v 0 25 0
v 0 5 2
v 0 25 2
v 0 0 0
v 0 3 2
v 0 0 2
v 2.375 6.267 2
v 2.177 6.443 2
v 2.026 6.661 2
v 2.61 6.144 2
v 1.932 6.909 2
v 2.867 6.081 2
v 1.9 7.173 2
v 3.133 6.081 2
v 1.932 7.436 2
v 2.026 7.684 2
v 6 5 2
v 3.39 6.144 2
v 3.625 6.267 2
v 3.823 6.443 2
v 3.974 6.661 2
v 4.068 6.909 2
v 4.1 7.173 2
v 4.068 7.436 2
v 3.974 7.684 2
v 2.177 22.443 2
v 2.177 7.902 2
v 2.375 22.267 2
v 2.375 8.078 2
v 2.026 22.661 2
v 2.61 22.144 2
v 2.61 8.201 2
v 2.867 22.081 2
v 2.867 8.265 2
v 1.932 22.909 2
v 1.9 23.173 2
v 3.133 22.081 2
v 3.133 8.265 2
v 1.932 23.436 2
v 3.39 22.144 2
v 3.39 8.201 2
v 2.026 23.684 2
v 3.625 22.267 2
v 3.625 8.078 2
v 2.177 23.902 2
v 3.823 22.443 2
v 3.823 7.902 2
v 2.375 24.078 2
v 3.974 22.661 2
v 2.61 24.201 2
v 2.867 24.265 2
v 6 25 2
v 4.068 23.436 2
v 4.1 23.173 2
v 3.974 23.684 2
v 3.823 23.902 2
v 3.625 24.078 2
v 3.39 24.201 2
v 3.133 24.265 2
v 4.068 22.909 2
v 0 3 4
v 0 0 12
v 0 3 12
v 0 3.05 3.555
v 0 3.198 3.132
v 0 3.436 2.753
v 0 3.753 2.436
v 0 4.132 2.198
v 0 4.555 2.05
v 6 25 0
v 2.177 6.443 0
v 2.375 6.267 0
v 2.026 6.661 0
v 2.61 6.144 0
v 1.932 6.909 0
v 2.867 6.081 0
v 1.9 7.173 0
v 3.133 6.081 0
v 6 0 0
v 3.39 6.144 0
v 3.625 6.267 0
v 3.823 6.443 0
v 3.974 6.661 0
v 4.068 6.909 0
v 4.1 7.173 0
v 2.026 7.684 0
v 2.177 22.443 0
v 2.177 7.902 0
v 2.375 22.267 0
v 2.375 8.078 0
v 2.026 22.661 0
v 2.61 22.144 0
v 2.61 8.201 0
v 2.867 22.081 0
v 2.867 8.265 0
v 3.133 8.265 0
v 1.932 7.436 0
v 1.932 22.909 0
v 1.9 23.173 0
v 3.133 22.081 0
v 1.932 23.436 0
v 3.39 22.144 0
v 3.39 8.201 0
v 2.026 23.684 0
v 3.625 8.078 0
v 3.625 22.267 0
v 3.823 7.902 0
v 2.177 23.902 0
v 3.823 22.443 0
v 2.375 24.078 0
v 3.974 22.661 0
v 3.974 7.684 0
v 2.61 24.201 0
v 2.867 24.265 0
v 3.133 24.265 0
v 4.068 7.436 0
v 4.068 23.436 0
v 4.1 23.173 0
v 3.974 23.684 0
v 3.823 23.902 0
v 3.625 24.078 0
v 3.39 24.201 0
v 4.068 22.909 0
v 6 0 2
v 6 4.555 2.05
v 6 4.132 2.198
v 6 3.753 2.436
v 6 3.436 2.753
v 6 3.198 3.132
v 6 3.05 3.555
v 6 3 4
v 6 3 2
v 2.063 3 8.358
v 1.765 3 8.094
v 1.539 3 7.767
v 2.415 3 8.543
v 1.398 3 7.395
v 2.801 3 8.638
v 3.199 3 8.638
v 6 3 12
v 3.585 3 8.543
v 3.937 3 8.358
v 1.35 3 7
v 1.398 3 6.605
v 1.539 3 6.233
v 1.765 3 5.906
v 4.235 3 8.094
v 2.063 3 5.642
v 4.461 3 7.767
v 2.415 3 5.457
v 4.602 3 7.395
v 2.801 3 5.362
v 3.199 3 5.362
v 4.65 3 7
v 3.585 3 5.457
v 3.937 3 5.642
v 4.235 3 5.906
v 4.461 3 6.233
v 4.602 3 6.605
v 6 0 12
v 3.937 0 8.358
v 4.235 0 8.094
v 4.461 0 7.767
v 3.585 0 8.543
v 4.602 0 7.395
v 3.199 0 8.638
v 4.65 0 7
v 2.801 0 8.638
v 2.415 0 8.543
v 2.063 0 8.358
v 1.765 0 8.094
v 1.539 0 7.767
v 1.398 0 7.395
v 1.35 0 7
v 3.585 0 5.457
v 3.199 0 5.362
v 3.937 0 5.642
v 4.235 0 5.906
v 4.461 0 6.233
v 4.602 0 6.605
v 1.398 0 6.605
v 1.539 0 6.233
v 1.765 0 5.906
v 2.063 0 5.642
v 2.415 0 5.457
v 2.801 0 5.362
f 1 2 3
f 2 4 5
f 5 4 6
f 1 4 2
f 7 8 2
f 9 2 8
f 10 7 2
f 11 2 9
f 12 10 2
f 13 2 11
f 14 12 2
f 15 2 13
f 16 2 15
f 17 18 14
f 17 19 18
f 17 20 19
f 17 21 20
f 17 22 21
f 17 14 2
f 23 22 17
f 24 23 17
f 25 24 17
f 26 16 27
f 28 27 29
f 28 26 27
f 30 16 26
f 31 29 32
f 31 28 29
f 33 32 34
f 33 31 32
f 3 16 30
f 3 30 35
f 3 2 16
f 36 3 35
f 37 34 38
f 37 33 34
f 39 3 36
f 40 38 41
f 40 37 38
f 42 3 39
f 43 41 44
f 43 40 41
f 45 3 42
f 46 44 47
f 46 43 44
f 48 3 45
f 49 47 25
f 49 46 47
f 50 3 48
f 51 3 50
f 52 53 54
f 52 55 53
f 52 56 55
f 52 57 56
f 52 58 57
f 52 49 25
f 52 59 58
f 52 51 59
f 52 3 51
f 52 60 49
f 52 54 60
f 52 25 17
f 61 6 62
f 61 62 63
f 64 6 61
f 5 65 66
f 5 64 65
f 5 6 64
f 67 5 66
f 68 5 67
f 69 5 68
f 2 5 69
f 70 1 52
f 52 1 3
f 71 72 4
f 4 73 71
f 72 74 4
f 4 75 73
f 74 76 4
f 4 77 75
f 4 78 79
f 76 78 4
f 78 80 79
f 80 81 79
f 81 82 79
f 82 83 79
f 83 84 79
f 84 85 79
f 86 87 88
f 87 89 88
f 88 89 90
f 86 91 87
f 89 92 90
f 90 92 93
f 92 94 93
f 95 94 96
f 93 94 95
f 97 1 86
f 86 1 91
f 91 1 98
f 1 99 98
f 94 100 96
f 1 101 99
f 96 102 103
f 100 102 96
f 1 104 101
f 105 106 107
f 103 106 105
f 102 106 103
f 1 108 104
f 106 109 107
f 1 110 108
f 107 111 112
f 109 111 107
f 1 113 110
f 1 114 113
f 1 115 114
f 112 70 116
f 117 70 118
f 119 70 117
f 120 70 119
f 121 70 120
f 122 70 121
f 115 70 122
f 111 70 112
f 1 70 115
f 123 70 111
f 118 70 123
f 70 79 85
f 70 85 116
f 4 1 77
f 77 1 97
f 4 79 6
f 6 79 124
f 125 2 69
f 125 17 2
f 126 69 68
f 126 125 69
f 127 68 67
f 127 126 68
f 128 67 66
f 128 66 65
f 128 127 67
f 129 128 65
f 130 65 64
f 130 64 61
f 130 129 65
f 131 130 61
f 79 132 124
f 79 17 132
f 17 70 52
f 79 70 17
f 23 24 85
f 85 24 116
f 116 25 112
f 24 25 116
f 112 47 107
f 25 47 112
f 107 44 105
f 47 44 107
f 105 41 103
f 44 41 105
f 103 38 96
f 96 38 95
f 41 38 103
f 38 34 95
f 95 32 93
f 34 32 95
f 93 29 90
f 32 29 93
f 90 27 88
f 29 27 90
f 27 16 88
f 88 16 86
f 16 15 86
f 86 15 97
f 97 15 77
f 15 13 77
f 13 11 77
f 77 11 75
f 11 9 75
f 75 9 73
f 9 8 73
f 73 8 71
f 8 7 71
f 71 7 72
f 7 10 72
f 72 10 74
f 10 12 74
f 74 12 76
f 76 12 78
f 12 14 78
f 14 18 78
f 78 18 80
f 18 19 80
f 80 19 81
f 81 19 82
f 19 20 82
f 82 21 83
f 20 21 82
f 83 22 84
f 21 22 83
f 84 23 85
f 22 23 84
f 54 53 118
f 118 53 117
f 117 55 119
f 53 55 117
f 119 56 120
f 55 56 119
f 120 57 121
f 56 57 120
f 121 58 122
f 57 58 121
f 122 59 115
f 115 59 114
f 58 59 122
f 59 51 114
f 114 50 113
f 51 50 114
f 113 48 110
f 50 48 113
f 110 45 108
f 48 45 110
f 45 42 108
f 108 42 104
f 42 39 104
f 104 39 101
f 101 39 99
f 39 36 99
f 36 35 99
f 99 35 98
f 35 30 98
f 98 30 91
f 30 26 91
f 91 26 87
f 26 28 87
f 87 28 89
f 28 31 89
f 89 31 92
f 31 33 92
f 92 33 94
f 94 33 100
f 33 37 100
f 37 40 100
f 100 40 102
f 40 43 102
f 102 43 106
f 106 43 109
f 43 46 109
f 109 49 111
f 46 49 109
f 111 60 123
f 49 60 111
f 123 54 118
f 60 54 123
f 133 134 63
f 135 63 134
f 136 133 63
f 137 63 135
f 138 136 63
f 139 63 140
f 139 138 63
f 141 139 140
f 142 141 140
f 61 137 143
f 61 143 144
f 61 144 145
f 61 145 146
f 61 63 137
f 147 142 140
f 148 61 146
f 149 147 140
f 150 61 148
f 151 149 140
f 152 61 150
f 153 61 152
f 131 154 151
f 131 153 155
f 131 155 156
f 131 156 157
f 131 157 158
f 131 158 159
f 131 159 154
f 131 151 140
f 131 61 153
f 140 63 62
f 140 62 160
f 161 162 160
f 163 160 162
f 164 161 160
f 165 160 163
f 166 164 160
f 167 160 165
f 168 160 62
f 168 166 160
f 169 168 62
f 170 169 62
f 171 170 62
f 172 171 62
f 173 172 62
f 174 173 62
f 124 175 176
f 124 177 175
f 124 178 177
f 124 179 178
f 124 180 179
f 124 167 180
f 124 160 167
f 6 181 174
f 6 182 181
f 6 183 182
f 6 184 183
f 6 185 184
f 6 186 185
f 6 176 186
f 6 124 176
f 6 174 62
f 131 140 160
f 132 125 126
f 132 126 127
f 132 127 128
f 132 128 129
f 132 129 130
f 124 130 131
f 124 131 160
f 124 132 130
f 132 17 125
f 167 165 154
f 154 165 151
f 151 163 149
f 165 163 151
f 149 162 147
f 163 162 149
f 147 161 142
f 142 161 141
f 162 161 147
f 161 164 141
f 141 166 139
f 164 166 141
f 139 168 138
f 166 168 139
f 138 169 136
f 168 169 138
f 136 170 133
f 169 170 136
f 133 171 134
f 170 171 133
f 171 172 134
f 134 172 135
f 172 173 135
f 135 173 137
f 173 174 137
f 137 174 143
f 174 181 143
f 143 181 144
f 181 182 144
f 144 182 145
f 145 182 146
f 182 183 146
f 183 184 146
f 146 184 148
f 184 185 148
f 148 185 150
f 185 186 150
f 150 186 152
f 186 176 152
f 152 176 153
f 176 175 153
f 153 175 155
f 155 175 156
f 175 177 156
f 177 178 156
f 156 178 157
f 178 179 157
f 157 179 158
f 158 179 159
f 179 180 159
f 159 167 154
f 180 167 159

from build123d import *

# Parameters (mm, degrees)
SKETCH_W        = 6
SKETCH_H        = 25
PAD_DEPTH       = 2
SKETCH001_W     = 6
SKETCH001_H     = 3
PAD001_DEPTH    = 10
FILLET_R        = 2
SKETCH002_R     = 1.1
POCKET_DEPTH    = 5
SKETCH003_R     = 1.65
POCKET001_DEPTH = 5


with BuildPart() as part:
    # Sketch → Pad (new body)
    with BuildSketch(Plane.XY):
        with Locations((3, 12.5)):
            Rectangle(SKETCH_W, SKETCH_H)
    extrude(amount=PAD_DEPTH)

    # Sketch001 (on Face6 of Pad) → Pad001 (join)
    with BuildSketch(Plane.XY.offset(2)):
        with Locations((3, 1.5)):
            Rectangle(SKETCH001_W, SKETCH001_H)
    extrude(amount=PAD001_DEPTH)

    # Fillet
    fillet_edges = [part.edges().sort_by_distance(p)[0] for p in [
        (3, 3, 2),
    ]]
    fillet(fillet_edges, radius=FILLET_R)

    # Sketch002 (on Face2 of Fillet) → Pocket (cut)
    with BuildSketch(Plane.XY.offset(2)):
        with Locations((3, 23.17265)):
            Circle(SKETCH002_R)
        with Locations((3, 7.17265)):
            Circle(SKETCH002_R)
    extrude(amount=-POCKET_DEPTH, mode=Mode.SUBTRACT)

    # Sketch003 (on Face13 of Pocket) → Pocket001 (cut)
    with BuildSketch(Plane.XZ):
        with Locations((3, 7)):
            Circle(SKETCH003_R)
    extrude(amount=-POCKET001_DEPTH, mode=Mode.SUBTRACT)


solid = part.part
